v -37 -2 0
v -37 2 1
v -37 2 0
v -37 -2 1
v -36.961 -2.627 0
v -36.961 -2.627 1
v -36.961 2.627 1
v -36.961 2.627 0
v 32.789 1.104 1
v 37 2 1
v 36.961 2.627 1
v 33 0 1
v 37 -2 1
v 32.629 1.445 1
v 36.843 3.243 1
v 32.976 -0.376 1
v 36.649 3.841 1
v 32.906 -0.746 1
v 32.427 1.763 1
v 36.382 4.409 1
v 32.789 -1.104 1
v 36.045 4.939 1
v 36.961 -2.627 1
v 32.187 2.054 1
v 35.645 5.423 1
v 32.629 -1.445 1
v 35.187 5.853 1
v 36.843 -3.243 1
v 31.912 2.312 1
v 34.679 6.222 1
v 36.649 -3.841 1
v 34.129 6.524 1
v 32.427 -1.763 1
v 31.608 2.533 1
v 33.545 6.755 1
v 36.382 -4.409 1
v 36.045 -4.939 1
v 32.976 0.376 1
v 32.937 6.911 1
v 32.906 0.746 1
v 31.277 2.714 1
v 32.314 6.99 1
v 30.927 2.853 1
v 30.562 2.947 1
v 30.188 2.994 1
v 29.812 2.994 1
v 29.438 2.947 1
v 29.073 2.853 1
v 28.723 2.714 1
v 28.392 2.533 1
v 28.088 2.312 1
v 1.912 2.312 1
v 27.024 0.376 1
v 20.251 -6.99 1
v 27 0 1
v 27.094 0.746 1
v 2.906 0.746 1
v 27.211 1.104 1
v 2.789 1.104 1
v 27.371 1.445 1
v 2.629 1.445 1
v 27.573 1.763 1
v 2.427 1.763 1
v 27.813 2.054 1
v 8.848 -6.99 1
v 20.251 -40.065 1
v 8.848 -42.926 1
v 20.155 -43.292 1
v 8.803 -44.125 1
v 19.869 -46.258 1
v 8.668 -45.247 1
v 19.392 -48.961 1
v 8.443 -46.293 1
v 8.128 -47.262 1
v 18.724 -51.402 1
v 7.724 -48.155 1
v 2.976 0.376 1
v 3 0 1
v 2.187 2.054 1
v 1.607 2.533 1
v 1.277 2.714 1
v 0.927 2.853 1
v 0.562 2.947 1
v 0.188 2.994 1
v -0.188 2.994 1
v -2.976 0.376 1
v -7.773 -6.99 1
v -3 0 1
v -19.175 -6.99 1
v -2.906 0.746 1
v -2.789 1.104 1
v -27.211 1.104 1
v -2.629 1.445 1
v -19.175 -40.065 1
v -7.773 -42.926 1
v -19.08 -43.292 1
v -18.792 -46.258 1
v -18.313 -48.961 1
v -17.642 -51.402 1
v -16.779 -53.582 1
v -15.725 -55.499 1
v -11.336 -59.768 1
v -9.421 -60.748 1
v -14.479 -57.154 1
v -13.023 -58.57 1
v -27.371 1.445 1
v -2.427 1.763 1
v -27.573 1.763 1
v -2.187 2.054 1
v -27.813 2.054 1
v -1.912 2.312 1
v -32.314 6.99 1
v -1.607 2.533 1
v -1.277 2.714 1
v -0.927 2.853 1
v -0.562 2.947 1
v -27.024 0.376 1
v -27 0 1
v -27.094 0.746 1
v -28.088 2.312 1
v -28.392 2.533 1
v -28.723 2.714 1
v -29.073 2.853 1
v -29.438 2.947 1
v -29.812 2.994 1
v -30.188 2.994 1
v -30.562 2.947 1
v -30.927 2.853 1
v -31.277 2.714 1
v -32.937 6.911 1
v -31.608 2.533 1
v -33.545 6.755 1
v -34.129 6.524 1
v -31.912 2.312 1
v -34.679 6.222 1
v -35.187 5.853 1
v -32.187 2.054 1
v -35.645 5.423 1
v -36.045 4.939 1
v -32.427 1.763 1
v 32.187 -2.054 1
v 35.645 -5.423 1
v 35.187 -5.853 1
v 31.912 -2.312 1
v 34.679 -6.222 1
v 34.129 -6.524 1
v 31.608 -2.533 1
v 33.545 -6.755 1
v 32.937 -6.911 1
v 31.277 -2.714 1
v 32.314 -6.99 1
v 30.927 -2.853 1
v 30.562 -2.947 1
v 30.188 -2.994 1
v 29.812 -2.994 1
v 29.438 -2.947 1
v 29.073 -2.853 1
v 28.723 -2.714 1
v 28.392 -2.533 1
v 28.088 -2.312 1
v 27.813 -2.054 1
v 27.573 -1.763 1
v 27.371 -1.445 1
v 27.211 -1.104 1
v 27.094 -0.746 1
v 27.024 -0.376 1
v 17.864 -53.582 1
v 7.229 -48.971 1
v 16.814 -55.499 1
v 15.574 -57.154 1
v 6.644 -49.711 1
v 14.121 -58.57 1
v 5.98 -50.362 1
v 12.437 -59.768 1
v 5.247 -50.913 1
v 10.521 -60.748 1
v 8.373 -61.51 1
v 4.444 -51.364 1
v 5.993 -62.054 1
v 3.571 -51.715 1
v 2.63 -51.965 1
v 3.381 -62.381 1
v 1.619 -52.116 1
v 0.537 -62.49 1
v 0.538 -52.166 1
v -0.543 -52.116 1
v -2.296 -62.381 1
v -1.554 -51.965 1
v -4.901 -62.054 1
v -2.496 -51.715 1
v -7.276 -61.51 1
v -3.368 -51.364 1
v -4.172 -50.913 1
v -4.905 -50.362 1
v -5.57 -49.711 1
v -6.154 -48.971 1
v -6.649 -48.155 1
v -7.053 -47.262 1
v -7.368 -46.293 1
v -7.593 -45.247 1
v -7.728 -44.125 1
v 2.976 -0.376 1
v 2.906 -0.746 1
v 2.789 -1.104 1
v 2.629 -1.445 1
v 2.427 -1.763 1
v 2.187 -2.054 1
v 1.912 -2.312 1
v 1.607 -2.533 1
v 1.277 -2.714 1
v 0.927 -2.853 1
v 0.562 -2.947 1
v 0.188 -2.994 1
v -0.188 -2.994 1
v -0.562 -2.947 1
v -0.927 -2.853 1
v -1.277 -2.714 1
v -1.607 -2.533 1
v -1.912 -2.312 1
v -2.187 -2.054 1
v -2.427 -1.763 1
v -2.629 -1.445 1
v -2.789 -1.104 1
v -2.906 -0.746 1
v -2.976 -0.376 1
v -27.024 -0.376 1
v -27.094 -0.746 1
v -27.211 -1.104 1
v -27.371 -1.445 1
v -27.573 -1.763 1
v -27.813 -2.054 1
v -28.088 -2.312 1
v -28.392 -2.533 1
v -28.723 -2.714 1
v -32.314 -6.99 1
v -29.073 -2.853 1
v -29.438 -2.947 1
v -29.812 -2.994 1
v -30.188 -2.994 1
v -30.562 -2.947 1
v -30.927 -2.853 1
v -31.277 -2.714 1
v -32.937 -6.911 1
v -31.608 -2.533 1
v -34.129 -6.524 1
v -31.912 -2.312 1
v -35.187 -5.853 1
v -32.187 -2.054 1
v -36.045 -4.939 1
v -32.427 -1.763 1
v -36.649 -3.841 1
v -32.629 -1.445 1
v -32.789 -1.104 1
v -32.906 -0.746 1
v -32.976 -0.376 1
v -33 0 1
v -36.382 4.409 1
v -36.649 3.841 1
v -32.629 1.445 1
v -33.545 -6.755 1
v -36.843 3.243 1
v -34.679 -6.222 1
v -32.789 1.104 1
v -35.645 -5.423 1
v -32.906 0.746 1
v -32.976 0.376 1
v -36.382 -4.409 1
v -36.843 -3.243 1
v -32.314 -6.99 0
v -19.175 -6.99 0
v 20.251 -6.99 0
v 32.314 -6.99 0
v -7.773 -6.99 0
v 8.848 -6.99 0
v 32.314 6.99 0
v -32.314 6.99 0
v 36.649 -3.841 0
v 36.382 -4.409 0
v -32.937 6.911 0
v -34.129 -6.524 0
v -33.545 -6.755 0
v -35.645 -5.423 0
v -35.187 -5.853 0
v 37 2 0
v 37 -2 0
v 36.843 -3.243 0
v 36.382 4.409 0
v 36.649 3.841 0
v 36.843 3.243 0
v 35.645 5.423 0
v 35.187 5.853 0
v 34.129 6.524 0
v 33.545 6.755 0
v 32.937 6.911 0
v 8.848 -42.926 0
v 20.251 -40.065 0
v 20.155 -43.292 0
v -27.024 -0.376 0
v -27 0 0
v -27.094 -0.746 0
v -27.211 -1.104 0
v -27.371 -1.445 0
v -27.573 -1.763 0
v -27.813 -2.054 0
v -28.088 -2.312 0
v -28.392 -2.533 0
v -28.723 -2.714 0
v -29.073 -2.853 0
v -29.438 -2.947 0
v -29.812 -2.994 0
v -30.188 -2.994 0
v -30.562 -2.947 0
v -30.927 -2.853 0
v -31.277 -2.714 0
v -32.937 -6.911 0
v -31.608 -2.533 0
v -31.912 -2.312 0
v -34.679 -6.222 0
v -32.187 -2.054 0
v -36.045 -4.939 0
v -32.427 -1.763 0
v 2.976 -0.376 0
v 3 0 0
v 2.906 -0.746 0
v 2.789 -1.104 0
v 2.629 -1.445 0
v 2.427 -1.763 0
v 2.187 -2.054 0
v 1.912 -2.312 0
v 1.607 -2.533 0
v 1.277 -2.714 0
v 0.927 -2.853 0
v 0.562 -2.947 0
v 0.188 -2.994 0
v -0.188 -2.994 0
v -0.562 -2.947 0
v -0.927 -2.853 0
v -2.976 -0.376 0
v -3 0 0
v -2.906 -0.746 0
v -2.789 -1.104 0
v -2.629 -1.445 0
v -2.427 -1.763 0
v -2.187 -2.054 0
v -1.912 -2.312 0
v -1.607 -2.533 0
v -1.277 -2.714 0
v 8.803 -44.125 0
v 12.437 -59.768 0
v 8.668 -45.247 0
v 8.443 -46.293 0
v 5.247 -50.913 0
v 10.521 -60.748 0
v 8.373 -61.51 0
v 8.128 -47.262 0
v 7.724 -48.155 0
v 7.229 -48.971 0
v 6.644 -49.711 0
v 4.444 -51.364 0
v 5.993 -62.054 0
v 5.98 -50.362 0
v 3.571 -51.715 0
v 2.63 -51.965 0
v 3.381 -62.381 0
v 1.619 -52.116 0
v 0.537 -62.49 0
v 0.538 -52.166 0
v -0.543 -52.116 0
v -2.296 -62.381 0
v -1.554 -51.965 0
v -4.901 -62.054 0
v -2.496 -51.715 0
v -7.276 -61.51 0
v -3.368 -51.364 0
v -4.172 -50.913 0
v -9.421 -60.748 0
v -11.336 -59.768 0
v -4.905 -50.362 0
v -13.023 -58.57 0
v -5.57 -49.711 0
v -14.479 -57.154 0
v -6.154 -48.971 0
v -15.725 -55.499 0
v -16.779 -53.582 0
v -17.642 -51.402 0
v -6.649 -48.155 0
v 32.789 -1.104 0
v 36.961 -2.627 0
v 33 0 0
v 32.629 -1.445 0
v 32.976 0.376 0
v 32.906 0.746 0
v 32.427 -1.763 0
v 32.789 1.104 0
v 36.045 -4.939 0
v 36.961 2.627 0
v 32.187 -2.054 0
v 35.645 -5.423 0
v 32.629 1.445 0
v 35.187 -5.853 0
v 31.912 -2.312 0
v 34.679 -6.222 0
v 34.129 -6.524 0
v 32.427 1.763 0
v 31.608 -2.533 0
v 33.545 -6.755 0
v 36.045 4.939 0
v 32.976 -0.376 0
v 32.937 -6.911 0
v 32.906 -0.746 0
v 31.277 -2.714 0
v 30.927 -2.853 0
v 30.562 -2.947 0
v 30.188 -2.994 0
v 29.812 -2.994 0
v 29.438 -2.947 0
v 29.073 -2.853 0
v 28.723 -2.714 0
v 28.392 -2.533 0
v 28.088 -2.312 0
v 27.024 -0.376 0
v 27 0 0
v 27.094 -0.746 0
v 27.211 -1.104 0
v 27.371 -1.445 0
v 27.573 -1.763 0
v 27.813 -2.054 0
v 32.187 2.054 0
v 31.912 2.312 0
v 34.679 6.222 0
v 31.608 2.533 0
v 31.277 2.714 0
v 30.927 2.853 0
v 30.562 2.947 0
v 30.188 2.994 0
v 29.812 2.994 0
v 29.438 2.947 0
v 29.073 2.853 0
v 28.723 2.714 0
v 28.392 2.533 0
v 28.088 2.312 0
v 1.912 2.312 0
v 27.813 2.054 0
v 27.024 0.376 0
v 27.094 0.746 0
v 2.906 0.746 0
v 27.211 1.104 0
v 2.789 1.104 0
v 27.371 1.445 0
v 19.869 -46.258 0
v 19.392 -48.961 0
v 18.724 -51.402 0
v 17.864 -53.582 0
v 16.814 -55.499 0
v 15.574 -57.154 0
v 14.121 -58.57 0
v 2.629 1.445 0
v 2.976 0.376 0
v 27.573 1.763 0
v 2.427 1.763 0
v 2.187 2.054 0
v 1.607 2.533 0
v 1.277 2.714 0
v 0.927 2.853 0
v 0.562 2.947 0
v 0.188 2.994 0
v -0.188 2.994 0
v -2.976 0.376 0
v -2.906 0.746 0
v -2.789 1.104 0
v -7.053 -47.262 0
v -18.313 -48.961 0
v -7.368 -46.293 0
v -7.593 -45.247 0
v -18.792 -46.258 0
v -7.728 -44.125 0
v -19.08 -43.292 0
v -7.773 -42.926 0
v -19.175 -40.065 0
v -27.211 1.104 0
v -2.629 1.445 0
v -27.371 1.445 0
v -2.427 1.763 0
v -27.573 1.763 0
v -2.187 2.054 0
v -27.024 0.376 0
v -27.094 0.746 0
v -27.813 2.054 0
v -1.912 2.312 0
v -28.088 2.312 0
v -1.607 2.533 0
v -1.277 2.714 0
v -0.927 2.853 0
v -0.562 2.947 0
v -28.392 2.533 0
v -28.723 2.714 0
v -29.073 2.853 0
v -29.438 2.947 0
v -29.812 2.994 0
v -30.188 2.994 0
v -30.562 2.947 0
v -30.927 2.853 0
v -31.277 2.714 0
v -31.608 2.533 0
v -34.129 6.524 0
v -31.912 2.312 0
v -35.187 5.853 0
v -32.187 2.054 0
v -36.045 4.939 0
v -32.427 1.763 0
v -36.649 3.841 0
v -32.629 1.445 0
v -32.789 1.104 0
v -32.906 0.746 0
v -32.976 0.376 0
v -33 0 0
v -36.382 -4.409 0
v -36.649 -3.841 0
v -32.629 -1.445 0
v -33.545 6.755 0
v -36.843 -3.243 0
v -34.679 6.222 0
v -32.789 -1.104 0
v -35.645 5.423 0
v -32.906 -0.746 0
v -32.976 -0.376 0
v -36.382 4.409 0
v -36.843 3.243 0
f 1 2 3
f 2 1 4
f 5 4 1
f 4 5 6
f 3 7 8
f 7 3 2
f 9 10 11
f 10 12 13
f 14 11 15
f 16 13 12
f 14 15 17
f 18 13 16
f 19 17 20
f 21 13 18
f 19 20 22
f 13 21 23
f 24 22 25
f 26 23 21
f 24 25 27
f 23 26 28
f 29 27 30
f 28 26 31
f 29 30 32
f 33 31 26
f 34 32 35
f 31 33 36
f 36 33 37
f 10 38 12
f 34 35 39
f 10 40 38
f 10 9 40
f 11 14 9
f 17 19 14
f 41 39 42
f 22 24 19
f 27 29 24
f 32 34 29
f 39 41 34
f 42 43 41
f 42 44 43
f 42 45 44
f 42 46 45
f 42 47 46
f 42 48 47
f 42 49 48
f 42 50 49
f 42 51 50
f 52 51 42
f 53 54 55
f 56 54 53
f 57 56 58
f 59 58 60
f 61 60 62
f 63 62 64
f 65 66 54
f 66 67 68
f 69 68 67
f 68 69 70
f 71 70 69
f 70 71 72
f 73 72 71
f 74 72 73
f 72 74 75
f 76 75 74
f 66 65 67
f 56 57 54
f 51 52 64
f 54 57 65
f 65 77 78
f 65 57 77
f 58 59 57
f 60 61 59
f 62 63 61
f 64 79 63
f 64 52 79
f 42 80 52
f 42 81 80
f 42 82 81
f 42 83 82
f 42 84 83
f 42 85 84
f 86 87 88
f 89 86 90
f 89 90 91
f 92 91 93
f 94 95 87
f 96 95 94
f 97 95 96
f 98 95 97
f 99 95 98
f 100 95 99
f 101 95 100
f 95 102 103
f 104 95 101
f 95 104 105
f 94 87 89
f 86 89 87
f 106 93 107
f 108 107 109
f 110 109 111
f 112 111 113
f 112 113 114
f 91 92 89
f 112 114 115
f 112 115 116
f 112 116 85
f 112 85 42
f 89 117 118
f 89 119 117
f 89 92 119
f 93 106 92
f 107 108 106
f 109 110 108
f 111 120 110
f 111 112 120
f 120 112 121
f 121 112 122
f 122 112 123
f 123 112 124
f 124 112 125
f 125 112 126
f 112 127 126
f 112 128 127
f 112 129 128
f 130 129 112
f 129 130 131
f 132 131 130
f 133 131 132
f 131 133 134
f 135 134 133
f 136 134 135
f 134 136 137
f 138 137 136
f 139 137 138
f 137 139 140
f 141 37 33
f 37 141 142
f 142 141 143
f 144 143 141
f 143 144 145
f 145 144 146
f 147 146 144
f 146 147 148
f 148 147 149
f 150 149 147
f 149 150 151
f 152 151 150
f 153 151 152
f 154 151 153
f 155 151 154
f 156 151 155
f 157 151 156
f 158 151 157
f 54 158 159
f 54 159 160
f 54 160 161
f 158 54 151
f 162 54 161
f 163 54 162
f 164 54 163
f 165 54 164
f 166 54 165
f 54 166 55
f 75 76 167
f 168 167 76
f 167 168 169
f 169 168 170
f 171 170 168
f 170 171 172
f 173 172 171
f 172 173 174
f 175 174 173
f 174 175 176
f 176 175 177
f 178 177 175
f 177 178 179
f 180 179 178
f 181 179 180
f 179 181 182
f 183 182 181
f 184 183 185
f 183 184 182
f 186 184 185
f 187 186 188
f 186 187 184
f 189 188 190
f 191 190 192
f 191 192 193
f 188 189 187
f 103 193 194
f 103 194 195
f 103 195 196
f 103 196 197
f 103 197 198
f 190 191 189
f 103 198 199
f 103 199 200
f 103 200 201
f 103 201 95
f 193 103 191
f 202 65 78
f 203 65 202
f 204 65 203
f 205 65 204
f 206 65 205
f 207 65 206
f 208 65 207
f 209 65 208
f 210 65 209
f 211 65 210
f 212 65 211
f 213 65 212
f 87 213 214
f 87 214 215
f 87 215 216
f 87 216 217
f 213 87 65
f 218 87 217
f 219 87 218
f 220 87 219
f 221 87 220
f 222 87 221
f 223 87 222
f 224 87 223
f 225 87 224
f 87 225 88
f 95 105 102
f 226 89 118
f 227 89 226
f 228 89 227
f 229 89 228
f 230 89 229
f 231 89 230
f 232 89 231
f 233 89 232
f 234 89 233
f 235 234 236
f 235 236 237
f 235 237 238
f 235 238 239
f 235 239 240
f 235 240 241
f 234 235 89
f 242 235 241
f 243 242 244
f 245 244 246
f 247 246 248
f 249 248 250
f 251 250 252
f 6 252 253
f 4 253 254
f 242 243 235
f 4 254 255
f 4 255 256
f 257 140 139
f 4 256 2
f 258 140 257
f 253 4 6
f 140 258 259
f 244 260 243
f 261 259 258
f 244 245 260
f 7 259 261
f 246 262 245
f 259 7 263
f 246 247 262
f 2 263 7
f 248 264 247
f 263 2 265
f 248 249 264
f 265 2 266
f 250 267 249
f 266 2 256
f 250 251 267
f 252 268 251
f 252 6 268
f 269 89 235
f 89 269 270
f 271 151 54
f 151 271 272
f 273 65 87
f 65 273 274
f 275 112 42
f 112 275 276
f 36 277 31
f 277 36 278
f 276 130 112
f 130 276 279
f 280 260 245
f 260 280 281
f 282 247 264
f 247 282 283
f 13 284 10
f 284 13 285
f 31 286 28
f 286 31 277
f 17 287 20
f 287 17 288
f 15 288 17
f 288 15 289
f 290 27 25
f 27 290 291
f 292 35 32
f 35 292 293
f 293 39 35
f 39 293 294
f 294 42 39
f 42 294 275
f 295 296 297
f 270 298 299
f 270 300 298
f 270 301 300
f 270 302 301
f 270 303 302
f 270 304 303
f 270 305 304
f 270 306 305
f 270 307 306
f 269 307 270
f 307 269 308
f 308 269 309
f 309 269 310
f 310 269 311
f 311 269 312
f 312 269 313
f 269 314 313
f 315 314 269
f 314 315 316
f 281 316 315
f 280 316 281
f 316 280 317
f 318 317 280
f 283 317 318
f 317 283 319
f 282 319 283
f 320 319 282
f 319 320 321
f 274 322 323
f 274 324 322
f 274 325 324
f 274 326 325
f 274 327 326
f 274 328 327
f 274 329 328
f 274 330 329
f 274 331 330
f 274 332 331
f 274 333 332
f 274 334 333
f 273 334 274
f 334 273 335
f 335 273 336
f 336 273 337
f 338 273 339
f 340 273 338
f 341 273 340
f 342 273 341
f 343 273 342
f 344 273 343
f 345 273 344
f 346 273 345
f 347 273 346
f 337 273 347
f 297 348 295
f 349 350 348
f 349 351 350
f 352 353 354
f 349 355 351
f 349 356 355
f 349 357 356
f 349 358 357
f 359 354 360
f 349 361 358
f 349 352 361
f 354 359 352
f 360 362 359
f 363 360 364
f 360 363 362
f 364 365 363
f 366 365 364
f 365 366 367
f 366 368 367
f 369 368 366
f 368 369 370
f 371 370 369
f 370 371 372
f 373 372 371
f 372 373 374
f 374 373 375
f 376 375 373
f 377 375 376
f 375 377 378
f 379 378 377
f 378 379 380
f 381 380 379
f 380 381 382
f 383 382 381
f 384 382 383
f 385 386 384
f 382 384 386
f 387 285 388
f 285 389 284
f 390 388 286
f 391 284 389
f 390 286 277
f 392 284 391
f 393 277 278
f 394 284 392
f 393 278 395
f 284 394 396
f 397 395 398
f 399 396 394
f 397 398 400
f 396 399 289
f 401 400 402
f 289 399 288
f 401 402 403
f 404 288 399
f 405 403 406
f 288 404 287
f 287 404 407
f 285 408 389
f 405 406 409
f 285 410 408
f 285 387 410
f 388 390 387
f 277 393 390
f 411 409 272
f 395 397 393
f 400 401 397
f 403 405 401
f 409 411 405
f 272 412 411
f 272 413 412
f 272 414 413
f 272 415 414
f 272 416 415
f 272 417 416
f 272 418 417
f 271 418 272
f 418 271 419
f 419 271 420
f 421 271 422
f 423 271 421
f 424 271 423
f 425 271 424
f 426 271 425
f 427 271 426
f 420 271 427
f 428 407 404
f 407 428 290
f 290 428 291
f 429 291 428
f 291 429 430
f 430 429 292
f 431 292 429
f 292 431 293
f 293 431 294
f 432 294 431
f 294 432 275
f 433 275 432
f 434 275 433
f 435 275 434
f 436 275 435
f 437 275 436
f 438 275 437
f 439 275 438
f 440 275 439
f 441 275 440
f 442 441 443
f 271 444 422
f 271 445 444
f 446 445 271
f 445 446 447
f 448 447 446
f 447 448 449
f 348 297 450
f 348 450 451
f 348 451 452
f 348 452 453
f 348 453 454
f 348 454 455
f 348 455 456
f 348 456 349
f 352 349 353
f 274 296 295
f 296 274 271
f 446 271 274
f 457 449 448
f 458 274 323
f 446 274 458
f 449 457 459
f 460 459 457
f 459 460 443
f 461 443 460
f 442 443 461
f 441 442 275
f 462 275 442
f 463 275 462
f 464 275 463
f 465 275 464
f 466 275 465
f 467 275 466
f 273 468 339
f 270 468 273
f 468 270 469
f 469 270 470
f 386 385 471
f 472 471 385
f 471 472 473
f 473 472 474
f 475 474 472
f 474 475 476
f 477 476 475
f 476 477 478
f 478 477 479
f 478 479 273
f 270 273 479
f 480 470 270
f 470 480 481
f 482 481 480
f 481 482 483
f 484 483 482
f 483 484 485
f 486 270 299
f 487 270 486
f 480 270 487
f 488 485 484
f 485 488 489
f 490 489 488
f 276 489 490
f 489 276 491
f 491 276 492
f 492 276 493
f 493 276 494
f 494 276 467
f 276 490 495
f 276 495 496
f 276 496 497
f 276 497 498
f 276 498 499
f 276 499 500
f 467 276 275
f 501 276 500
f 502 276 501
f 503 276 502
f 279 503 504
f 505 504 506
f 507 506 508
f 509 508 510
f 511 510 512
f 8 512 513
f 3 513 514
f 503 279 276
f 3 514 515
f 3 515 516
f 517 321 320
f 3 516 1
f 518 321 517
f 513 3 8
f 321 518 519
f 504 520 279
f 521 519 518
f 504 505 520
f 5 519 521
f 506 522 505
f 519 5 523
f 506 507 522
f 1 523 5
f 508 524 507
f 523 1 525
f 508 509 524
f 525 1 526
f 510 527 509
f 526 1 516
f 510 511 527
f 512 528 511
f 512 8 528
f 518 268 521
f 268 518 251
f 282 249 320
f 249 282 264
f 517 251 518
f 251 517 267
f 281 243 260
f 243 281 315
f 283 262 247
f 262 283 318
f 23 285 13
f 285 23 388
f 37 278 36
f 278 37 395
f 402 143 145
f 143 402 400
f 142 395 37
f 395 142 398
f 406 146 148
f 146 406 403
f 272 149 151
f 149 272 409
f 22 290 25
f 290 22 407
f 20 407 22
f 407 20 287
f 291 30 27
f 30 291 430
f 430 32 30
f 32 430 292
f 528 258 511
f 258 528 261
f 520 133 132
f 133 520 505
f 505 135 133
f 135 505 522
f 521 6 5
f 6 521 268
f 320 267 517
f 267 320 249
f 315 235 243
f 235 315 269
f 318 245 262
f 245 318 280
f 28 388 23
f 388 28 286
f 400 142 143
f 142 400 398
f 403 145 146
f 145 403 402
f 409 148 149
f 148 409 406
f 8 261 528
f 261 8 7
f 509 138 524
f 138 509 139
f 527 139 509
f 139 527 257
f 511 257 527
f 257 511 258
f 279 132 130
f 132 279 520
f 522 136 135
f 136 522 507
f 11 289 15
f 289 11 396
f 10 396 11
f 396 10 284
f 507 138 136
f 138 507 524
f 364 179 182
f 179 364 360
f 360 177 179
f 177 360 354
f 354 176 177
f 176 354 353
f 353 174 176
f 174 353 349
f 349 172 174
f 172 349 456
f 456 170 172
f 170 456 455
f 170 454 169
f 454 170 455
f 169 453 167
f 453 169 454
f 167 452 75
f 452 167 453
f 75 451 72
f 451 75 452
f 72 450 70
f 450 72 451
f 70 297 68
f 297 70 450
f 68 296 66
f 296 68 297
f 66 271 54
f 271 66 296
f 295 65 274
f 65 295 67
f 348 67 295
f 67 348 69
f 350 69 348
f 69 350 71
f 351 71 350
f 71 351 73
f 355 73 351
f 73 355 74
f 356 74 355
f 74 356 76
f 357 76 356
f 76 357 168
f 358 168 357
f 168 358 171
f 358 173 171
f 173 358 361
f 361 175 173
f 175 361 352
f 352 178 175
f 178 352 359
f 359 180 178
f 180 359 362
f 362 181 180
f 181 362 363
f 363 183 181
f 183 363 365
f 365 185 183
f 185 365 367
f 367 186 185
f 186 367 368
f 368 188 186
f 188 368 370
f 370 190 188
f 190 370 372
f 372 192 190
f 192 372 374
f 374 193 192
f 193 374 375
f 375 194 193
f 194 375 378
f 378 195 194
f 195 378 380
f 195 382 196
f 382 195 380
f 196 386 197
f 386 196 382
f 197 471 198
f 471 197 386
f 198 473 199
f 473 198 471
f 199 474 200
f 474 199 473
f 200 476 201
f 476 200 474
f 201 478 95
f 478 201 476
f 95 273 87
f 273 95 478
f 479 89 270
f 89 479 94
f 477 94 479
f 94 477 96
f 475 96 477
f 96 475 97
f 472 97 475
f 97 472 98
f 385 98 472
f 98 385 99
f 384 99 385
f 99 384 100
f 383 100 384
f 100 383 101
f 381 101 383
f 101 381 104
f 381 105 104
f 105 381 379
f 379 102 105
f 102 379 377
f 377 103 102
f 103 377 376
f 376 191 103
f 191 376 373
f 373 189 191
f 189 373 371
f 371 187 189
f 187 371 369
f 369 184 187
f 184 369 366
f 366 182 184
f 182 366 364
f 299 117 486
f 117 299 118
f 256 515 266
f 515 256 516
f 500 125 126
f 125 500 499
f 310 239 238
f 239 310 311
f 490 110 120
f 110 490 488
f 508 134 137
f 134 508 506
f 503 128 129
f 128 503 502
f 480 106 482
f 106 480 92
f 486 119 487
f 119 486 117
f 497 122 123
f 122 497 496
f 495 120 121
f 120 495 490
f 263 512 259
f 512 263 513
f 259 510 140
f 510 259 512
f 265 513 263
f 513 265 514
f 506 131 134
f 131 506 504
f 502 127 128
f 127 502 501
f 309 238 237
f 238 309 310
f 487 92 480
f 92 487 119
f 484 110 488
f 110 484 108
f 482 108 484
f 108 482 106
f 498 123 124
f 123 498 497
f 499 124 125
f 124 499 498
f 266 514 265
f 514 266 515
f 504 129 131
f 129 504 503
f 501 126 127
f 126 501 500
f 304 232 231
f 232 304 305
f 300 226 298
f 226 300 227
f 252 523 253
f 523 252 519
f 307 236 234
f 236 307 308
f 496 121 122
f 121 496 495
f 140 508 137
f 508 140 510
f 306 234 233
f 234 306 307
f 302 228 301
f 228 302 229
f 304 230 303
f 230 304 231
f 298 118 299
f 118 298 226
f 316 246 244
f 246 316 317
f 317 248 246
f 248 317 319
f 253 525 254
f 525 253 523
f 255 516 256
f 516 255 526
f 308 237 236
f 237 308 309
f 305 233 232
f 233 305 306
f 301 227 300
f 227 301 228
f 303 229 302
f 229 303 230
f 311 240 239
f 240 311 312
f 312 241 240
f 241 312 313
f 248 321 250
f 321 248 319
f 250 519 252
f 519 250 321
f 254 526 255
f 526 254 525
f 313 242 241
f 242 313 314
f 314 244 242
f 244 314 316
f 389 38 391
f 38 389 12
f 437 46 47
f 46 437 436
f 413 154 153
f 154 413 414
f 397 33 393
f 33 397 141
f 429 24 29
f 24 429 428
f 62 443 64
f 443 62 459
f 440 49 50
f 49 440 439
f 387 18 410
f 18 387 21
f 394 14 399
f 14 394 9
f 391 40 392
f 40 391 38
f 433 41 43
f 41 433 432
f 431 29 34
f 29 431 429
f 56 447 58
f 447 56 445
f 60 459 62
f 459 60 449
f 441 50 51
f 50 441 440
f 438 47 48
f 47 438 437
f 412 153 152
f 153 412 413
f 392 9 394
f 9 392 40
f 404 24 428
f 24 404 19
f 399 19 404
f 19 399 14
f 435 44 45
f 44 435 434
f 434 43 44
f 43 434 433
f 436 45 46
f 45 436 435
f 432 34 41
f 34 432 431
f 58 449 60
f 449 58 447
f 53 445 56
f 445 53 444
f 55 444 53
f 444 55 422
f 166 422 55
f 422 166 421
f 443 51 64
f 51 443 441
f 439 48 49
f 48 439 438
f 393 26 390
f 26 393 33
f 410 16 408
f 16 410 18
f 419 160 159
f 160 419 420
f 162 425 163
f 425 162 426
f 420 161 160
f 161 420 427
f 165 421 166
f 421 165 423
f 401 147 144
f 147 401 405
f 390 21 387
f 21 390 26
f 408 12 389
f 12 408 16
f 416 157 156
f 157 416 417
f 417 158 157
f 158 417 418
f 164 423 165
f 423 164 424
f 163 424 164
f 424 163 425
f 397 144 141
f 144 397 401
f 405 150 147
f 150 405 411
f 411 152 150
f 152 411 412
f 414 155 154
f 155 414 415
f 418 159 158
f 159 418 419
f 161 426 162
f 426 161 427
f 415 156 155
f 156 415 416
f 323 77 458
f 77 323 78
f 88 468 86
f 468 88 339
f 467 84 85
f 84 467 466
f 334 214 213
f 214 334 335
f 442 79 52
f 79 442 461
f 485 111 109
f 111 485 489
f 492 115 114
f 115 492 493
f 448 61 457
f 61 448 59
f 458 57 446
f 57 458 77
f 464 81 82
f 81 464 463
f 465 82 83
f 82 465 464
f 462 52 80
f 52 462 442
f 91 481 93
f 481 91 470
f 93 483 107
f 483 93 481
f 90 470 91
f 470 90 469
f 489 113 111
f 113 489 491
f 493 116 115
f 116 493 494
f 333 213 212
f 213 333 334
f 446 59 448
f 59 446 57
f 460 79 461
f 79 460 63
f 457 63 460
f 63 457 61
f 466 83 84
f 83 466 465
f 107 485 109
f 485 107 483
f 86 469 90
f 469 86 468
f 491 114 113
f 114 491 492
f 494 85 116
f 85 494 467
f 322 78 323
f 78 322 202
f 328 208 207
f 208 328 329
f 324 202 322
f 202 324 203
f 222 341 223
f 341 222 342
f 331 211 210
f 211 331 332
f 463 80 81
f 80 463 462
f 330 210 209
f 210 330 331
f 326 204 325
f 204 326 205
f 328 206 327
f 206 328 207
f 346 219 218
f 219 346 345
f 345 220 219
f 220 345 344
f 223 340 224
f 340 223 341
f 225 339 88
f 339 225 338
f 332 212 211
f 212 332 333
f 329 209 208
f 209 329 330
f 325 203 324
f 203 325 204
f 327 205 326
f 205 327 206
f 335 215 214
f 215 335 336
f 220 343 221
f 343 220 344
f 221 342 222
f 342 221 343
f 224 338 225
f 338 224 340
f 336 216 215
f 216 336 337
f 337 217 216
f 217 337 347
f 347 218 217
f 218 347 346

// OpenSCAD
$fn = 50;


difference() {
	union() {
		translate(v = [0, 0, 0]) {
			rotate(a = [0, 0, 0]) {
				hull() {
					translate(v = [-32.0000000000, 2.0000000000, 0]) {
						rotate(a = [0, 0, 0]) {
							translate(v = [0, 0, 0]) {
								rotate(a = [0, 0, 0]) {
									cylinder(h = 1, r = 5);
								}
							}
						}
					}
					translate(v = [32.0000000000, 2.0000000000, 0]) {
						rotate(a = [0, 0, 0]) {
							translate(v = [0, 0, 0]) {
								rotate(a = [0, 0, 0]) {
									cylinder(h = 1, r = 5);
								}
							}
						}
					}
					translate(v = [-32.0000000000, -2.0000000000, 0]) {
						rotate(a = [0, 0, 0]) {
							translate(v = [0, 0, 0]) {
								rotate(a = [0, 0, 0]) {
									cylinder(h = 1, r = 5);
								}
							}
						}
					}
					translate(v = [32.0000000000, -2.0000000000, 0]) {
						rotate(a = [0, 0, 0]) {
							translate(v = [0, 0, 0]) {
								rotate(a = [0, 0, 0]) {
									cylinder(h = 1, r = 5);
								}
							}
						}
					}
				}
			}
		}
		translate(v = [0, -5, 0]) {
			rotate(a = [0, 0, 0]) {
				linear_extrude(height = 1) {
					text(font = "DejaVu Sans Mono:style=Bold", halign = "center", size = 57.0000000000, text = "U", valign = "top");
				}
			}
		}
	}
	union() {
		translate(v = [-30.0000000000, 0.0000000000, -125.0000000000]) {
			rotate(a = [0, 0, 0]) {
				cylinder(h = 250, r = 3.0000000000);
			}
		}
		translate(v = [30.0000000000, 0.0000000000, -125.0000000000]) {
			rotate(a = [0, 0, 0]) {
				cylinder(h = 250, r = 3.0000000000);
			}
		}
		translate(v = [30.0000000000, 0.0000000000, -125.0000000000]) {
			rotate(a = [0, 0, 0]) {
				cylinder(h = 250, r = 3.0000000000);
			}
		}
		translate(v = [0, 0, -125.0000000000]) {
			rotate(a = [0, 0, 0]) {
				cylinder(h = 250, r = 3.0000000000);
			}
		}
	}
}
